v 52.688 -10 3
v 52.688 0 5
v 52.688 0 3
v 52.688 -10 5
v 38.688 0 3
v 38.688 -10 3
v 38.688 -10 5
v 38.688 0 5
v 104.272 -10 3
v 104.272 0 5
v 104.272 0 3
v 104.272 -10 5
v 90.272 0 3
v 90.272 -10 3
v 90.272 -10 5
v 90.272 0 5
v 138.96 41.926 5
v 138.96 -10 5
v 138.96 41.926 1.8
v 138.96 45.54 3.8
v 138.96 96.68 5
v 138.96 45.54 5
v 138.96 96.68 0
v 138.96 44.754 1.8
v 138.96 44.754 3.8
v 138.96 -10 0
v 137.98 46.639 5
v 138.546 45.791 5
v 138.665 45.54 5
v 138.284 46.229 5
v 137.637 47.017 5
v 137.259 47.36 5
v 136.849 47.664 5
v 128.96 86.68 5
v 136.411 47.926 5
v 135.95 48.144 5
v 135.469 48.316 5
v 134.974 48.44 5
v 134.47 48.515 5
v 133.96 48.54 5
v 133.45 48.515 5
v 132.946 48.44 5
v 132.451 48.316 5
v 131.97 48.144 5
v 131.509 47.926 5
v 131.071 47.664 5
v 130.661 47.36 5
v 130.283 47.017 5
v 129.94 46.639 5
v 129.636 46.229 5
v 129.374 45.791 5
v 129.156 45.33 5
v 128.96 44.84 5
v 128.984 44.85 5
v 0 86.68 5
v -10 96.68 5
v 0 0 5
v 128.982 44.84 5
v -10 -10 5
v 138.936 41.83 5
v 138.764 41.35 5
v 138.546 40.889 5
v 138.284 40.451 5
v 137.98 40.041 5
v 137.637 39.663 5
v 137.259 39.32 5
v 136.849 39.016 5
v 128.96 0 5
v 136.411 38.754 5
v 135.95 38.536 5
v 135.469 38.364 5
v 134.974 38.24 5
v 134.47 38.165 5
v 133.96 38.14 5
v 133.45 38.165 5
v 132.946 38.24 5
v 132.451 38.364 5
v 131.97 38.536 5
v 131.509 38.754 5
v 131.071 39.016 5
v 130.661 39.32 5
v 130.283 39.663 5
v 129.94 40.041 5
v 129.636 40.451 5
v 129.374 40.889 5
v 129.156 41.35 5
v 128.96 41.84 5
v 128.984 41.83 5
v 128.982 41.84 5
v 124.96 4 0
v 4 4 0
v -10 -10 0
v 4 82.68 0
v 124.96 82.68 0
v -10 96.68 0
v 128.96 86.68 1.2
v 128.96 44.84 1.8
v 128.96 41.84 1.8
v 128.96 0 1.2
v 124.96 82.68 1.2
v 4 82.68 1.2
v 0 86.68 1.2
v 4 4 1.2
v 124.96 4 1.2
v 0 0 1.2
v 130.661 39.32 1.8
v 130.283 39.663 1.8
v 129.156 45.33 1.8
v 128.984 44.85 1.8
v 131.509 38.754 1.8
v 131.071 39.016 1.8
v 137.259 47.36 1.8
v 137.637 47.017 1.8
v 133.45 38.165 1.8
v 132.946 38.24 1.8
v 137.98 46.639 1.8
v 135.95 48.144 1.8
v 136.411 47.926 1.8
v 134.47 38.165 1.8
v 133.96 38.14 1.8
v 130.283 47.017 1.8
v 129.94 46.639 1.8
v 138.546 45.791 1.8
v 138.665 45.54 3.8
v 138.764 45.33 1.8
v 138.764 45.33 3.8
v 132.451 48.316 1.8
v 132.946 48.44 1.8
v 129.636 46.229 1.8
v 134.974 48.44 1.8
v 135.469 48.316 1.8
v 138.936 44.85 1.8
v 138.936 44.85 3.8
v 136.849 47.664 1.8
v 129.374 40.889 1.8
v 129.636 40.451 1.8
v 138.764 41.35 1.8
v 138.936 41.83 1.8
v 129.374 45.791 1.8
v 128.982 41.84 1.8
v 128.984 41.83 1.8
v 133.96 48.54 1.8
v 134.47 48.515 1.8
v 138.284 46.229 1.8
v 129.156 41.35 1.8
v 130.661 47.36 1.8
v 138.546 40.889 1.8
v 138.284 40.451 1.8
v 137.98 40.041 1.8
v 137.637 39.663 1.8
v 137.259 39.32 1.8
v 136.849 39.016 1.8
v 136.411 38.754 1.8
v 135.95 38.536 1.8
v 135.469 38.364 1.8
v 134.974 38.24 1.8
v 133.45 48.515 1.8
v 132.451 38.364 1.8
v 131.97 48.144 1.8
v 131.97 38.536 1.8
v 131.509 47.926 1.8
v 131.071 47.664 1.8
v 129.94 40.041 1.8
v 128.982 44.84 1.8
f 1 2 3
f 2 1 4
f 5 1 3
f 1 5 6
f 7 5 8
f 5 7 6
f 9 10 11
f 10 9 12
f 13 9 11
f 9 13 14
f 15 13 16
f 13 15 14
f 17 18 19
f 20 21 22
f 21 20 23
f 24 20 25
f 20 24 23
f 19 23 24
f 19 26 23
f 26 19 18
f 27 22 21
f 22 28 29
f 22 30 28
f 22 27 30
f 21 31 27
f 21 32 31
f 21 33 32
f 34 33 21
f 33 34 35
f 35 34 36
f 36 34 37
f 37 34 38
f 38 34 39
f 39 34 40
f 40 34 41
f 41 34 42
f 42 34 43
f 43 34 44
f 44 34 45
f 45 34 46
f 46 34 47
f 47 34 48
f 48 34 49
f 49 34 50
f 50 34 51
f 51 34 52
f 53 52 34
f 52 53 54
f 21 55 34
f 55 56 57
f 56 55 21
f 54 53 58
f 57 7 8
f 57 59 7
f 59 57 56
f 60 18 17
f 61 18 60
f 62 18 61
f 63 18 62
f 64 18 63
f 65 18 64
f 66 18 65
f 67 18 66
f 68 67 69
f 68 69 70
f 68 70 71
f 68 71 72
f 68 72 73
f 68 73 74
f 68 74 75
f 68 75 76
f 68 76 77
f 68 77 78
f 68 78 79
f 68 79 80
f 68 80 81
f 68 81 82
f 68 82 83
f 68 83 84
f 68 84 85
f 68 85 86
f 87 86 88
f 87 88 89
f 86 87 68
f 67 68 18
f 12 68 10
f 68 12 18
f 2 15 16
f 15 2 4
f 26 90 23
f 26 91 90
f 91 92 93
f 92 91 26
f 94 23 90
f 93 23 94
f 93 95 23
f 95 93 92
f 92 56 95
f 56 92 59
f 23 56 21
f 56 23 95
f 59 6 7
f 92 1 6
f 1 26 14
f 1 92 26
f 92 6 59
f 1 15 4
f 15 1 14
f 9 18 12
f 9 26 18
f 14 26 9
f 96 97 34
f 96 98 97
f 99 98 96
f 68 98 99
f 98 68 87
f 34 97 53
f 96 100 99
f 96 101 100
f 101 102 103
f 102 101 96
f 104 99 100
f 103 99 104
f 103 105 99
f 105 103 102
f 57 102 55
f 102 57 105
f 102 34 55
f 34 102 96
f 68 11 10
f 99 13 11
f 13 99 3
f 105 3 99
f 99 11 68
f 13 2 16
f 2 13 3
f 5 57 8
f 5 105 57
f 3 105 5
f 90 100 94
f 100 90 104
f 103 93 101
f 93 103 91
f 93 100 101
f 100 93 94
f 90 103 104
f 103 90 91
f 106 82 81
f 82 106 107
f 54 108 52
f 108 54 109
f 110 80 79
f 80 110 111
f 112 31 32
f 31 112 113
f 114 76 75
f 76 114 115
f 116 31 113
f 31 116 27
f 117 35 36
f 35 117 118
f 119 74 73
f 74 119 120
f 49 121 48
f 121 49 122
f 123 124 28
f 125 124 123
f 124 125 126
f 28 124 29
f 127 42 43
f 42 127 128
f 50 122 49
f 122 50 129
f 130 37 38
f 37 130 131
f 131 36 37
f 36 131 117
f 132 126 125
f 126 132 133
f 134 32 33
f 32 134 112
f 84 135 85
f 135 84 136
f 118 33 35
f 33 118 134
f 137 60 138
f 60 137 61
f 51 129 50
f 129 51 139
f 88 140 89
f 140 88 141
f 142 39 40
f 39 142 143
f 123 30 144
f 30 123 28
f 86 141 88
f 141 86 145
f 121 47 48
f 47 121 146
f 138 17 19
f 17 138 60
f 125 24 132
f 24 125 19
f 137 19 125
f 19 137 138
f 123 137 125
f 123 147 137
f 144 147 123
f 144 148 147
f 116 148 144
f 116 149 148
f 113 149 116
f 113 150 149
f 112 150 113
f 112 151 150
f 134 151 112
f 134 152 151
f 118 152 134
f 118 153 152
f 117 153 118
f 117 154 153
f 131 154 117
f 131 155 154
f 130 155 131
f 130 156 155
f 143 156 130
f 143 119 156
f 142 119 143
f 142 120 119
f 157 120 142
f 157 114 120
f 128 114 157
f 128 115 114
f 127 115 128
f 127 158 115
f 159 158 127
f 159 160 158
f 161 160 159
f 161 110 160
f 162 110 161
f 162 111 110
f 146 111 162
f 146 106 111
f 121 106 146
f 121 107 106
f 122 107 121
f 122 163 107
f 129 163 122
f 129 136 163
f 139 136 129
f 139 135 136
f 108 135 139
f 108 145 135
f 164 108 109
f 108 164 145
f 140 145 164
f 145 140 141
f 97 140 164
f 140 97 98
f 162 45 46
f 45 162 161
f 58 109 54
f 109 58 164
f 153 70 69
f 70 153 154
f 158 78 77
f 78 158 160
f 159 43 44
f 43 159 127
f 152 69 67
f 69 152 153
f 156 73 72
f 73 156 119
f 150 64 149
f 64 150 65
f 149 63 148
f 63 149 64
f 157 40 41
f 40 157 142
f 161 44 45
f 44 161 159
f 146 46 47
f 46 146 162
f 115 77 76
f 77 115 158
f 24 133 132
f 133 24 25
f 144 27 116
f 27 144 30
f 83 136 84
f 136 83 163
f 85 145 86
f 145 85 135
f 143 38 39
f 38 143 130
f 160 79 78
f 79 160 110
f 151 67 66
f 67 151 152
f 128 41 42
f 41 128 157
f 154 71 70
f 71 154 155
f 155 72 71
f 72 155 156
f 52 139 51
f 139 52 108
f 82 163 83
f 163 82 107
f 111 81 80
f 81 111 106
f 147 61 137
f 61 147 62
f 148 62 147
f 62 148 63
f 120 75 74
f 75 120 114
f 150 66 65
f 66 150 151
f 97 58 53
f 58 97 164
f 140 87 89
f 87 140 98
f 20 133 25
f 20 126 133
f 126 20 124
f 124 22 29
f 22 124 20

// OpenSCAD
// WetStack-0 plate locator frame: holds a 24-well plate in the same spot on the light pad
// every session, with a pocket for the coin vibration motor (the mixer).
// Measure YOUR plate with calipers and edit the first block. Print in PETG, 0.2 mm layers.

plate_len = 127.76;   // outer length of the plate footprint (mm)
plate_wid = 85.48;    // outer width
clear     = 0.6;      // clearance per side
border    = 10;       // frame border width
height    = 5;        // frame height
base      = 1.2;      // floor lip thickness under the plate edge
lip       = 4;        // how far the lip reaches under the plate
motor_d   = 10.4;     // coin motor 1027: 10 mm diameter
motor_h   = 3.2;
$fn = 64;

L = plate_len + 2*clear;
W = plate_wid + 2*clear;

difference() {
  translate([-border, -border, 0]) cube([L + 2*border, W + 2*border, height]);
  translate([0, 0, base]) cube([L, W, height]);                       // plate pocket
  translate([lip, lip, -1]) cube([L - 2*lip, W - 2*lip, height + 2]); // light window
  translate([L + border/2, W/2, height - motor_h]) cylinder(d = motor_d, h = motor_h + 1); // motor pocket
  translate([L - 1, W/2 - 1.5, height - motor_h]) cube([border/2 + 1, 3, motor_h + 1]);   // motor touches plate wall
  translate([L + border/2 - 1, W/2, height - 1.2]) cube([border, 2.2, 2]);                // wire channel
  for (x = [L*0.3, L*0.7]) translate([x, -border - 1, height - 2]) cube([14, border + 2, 3]); // finger notches
}
